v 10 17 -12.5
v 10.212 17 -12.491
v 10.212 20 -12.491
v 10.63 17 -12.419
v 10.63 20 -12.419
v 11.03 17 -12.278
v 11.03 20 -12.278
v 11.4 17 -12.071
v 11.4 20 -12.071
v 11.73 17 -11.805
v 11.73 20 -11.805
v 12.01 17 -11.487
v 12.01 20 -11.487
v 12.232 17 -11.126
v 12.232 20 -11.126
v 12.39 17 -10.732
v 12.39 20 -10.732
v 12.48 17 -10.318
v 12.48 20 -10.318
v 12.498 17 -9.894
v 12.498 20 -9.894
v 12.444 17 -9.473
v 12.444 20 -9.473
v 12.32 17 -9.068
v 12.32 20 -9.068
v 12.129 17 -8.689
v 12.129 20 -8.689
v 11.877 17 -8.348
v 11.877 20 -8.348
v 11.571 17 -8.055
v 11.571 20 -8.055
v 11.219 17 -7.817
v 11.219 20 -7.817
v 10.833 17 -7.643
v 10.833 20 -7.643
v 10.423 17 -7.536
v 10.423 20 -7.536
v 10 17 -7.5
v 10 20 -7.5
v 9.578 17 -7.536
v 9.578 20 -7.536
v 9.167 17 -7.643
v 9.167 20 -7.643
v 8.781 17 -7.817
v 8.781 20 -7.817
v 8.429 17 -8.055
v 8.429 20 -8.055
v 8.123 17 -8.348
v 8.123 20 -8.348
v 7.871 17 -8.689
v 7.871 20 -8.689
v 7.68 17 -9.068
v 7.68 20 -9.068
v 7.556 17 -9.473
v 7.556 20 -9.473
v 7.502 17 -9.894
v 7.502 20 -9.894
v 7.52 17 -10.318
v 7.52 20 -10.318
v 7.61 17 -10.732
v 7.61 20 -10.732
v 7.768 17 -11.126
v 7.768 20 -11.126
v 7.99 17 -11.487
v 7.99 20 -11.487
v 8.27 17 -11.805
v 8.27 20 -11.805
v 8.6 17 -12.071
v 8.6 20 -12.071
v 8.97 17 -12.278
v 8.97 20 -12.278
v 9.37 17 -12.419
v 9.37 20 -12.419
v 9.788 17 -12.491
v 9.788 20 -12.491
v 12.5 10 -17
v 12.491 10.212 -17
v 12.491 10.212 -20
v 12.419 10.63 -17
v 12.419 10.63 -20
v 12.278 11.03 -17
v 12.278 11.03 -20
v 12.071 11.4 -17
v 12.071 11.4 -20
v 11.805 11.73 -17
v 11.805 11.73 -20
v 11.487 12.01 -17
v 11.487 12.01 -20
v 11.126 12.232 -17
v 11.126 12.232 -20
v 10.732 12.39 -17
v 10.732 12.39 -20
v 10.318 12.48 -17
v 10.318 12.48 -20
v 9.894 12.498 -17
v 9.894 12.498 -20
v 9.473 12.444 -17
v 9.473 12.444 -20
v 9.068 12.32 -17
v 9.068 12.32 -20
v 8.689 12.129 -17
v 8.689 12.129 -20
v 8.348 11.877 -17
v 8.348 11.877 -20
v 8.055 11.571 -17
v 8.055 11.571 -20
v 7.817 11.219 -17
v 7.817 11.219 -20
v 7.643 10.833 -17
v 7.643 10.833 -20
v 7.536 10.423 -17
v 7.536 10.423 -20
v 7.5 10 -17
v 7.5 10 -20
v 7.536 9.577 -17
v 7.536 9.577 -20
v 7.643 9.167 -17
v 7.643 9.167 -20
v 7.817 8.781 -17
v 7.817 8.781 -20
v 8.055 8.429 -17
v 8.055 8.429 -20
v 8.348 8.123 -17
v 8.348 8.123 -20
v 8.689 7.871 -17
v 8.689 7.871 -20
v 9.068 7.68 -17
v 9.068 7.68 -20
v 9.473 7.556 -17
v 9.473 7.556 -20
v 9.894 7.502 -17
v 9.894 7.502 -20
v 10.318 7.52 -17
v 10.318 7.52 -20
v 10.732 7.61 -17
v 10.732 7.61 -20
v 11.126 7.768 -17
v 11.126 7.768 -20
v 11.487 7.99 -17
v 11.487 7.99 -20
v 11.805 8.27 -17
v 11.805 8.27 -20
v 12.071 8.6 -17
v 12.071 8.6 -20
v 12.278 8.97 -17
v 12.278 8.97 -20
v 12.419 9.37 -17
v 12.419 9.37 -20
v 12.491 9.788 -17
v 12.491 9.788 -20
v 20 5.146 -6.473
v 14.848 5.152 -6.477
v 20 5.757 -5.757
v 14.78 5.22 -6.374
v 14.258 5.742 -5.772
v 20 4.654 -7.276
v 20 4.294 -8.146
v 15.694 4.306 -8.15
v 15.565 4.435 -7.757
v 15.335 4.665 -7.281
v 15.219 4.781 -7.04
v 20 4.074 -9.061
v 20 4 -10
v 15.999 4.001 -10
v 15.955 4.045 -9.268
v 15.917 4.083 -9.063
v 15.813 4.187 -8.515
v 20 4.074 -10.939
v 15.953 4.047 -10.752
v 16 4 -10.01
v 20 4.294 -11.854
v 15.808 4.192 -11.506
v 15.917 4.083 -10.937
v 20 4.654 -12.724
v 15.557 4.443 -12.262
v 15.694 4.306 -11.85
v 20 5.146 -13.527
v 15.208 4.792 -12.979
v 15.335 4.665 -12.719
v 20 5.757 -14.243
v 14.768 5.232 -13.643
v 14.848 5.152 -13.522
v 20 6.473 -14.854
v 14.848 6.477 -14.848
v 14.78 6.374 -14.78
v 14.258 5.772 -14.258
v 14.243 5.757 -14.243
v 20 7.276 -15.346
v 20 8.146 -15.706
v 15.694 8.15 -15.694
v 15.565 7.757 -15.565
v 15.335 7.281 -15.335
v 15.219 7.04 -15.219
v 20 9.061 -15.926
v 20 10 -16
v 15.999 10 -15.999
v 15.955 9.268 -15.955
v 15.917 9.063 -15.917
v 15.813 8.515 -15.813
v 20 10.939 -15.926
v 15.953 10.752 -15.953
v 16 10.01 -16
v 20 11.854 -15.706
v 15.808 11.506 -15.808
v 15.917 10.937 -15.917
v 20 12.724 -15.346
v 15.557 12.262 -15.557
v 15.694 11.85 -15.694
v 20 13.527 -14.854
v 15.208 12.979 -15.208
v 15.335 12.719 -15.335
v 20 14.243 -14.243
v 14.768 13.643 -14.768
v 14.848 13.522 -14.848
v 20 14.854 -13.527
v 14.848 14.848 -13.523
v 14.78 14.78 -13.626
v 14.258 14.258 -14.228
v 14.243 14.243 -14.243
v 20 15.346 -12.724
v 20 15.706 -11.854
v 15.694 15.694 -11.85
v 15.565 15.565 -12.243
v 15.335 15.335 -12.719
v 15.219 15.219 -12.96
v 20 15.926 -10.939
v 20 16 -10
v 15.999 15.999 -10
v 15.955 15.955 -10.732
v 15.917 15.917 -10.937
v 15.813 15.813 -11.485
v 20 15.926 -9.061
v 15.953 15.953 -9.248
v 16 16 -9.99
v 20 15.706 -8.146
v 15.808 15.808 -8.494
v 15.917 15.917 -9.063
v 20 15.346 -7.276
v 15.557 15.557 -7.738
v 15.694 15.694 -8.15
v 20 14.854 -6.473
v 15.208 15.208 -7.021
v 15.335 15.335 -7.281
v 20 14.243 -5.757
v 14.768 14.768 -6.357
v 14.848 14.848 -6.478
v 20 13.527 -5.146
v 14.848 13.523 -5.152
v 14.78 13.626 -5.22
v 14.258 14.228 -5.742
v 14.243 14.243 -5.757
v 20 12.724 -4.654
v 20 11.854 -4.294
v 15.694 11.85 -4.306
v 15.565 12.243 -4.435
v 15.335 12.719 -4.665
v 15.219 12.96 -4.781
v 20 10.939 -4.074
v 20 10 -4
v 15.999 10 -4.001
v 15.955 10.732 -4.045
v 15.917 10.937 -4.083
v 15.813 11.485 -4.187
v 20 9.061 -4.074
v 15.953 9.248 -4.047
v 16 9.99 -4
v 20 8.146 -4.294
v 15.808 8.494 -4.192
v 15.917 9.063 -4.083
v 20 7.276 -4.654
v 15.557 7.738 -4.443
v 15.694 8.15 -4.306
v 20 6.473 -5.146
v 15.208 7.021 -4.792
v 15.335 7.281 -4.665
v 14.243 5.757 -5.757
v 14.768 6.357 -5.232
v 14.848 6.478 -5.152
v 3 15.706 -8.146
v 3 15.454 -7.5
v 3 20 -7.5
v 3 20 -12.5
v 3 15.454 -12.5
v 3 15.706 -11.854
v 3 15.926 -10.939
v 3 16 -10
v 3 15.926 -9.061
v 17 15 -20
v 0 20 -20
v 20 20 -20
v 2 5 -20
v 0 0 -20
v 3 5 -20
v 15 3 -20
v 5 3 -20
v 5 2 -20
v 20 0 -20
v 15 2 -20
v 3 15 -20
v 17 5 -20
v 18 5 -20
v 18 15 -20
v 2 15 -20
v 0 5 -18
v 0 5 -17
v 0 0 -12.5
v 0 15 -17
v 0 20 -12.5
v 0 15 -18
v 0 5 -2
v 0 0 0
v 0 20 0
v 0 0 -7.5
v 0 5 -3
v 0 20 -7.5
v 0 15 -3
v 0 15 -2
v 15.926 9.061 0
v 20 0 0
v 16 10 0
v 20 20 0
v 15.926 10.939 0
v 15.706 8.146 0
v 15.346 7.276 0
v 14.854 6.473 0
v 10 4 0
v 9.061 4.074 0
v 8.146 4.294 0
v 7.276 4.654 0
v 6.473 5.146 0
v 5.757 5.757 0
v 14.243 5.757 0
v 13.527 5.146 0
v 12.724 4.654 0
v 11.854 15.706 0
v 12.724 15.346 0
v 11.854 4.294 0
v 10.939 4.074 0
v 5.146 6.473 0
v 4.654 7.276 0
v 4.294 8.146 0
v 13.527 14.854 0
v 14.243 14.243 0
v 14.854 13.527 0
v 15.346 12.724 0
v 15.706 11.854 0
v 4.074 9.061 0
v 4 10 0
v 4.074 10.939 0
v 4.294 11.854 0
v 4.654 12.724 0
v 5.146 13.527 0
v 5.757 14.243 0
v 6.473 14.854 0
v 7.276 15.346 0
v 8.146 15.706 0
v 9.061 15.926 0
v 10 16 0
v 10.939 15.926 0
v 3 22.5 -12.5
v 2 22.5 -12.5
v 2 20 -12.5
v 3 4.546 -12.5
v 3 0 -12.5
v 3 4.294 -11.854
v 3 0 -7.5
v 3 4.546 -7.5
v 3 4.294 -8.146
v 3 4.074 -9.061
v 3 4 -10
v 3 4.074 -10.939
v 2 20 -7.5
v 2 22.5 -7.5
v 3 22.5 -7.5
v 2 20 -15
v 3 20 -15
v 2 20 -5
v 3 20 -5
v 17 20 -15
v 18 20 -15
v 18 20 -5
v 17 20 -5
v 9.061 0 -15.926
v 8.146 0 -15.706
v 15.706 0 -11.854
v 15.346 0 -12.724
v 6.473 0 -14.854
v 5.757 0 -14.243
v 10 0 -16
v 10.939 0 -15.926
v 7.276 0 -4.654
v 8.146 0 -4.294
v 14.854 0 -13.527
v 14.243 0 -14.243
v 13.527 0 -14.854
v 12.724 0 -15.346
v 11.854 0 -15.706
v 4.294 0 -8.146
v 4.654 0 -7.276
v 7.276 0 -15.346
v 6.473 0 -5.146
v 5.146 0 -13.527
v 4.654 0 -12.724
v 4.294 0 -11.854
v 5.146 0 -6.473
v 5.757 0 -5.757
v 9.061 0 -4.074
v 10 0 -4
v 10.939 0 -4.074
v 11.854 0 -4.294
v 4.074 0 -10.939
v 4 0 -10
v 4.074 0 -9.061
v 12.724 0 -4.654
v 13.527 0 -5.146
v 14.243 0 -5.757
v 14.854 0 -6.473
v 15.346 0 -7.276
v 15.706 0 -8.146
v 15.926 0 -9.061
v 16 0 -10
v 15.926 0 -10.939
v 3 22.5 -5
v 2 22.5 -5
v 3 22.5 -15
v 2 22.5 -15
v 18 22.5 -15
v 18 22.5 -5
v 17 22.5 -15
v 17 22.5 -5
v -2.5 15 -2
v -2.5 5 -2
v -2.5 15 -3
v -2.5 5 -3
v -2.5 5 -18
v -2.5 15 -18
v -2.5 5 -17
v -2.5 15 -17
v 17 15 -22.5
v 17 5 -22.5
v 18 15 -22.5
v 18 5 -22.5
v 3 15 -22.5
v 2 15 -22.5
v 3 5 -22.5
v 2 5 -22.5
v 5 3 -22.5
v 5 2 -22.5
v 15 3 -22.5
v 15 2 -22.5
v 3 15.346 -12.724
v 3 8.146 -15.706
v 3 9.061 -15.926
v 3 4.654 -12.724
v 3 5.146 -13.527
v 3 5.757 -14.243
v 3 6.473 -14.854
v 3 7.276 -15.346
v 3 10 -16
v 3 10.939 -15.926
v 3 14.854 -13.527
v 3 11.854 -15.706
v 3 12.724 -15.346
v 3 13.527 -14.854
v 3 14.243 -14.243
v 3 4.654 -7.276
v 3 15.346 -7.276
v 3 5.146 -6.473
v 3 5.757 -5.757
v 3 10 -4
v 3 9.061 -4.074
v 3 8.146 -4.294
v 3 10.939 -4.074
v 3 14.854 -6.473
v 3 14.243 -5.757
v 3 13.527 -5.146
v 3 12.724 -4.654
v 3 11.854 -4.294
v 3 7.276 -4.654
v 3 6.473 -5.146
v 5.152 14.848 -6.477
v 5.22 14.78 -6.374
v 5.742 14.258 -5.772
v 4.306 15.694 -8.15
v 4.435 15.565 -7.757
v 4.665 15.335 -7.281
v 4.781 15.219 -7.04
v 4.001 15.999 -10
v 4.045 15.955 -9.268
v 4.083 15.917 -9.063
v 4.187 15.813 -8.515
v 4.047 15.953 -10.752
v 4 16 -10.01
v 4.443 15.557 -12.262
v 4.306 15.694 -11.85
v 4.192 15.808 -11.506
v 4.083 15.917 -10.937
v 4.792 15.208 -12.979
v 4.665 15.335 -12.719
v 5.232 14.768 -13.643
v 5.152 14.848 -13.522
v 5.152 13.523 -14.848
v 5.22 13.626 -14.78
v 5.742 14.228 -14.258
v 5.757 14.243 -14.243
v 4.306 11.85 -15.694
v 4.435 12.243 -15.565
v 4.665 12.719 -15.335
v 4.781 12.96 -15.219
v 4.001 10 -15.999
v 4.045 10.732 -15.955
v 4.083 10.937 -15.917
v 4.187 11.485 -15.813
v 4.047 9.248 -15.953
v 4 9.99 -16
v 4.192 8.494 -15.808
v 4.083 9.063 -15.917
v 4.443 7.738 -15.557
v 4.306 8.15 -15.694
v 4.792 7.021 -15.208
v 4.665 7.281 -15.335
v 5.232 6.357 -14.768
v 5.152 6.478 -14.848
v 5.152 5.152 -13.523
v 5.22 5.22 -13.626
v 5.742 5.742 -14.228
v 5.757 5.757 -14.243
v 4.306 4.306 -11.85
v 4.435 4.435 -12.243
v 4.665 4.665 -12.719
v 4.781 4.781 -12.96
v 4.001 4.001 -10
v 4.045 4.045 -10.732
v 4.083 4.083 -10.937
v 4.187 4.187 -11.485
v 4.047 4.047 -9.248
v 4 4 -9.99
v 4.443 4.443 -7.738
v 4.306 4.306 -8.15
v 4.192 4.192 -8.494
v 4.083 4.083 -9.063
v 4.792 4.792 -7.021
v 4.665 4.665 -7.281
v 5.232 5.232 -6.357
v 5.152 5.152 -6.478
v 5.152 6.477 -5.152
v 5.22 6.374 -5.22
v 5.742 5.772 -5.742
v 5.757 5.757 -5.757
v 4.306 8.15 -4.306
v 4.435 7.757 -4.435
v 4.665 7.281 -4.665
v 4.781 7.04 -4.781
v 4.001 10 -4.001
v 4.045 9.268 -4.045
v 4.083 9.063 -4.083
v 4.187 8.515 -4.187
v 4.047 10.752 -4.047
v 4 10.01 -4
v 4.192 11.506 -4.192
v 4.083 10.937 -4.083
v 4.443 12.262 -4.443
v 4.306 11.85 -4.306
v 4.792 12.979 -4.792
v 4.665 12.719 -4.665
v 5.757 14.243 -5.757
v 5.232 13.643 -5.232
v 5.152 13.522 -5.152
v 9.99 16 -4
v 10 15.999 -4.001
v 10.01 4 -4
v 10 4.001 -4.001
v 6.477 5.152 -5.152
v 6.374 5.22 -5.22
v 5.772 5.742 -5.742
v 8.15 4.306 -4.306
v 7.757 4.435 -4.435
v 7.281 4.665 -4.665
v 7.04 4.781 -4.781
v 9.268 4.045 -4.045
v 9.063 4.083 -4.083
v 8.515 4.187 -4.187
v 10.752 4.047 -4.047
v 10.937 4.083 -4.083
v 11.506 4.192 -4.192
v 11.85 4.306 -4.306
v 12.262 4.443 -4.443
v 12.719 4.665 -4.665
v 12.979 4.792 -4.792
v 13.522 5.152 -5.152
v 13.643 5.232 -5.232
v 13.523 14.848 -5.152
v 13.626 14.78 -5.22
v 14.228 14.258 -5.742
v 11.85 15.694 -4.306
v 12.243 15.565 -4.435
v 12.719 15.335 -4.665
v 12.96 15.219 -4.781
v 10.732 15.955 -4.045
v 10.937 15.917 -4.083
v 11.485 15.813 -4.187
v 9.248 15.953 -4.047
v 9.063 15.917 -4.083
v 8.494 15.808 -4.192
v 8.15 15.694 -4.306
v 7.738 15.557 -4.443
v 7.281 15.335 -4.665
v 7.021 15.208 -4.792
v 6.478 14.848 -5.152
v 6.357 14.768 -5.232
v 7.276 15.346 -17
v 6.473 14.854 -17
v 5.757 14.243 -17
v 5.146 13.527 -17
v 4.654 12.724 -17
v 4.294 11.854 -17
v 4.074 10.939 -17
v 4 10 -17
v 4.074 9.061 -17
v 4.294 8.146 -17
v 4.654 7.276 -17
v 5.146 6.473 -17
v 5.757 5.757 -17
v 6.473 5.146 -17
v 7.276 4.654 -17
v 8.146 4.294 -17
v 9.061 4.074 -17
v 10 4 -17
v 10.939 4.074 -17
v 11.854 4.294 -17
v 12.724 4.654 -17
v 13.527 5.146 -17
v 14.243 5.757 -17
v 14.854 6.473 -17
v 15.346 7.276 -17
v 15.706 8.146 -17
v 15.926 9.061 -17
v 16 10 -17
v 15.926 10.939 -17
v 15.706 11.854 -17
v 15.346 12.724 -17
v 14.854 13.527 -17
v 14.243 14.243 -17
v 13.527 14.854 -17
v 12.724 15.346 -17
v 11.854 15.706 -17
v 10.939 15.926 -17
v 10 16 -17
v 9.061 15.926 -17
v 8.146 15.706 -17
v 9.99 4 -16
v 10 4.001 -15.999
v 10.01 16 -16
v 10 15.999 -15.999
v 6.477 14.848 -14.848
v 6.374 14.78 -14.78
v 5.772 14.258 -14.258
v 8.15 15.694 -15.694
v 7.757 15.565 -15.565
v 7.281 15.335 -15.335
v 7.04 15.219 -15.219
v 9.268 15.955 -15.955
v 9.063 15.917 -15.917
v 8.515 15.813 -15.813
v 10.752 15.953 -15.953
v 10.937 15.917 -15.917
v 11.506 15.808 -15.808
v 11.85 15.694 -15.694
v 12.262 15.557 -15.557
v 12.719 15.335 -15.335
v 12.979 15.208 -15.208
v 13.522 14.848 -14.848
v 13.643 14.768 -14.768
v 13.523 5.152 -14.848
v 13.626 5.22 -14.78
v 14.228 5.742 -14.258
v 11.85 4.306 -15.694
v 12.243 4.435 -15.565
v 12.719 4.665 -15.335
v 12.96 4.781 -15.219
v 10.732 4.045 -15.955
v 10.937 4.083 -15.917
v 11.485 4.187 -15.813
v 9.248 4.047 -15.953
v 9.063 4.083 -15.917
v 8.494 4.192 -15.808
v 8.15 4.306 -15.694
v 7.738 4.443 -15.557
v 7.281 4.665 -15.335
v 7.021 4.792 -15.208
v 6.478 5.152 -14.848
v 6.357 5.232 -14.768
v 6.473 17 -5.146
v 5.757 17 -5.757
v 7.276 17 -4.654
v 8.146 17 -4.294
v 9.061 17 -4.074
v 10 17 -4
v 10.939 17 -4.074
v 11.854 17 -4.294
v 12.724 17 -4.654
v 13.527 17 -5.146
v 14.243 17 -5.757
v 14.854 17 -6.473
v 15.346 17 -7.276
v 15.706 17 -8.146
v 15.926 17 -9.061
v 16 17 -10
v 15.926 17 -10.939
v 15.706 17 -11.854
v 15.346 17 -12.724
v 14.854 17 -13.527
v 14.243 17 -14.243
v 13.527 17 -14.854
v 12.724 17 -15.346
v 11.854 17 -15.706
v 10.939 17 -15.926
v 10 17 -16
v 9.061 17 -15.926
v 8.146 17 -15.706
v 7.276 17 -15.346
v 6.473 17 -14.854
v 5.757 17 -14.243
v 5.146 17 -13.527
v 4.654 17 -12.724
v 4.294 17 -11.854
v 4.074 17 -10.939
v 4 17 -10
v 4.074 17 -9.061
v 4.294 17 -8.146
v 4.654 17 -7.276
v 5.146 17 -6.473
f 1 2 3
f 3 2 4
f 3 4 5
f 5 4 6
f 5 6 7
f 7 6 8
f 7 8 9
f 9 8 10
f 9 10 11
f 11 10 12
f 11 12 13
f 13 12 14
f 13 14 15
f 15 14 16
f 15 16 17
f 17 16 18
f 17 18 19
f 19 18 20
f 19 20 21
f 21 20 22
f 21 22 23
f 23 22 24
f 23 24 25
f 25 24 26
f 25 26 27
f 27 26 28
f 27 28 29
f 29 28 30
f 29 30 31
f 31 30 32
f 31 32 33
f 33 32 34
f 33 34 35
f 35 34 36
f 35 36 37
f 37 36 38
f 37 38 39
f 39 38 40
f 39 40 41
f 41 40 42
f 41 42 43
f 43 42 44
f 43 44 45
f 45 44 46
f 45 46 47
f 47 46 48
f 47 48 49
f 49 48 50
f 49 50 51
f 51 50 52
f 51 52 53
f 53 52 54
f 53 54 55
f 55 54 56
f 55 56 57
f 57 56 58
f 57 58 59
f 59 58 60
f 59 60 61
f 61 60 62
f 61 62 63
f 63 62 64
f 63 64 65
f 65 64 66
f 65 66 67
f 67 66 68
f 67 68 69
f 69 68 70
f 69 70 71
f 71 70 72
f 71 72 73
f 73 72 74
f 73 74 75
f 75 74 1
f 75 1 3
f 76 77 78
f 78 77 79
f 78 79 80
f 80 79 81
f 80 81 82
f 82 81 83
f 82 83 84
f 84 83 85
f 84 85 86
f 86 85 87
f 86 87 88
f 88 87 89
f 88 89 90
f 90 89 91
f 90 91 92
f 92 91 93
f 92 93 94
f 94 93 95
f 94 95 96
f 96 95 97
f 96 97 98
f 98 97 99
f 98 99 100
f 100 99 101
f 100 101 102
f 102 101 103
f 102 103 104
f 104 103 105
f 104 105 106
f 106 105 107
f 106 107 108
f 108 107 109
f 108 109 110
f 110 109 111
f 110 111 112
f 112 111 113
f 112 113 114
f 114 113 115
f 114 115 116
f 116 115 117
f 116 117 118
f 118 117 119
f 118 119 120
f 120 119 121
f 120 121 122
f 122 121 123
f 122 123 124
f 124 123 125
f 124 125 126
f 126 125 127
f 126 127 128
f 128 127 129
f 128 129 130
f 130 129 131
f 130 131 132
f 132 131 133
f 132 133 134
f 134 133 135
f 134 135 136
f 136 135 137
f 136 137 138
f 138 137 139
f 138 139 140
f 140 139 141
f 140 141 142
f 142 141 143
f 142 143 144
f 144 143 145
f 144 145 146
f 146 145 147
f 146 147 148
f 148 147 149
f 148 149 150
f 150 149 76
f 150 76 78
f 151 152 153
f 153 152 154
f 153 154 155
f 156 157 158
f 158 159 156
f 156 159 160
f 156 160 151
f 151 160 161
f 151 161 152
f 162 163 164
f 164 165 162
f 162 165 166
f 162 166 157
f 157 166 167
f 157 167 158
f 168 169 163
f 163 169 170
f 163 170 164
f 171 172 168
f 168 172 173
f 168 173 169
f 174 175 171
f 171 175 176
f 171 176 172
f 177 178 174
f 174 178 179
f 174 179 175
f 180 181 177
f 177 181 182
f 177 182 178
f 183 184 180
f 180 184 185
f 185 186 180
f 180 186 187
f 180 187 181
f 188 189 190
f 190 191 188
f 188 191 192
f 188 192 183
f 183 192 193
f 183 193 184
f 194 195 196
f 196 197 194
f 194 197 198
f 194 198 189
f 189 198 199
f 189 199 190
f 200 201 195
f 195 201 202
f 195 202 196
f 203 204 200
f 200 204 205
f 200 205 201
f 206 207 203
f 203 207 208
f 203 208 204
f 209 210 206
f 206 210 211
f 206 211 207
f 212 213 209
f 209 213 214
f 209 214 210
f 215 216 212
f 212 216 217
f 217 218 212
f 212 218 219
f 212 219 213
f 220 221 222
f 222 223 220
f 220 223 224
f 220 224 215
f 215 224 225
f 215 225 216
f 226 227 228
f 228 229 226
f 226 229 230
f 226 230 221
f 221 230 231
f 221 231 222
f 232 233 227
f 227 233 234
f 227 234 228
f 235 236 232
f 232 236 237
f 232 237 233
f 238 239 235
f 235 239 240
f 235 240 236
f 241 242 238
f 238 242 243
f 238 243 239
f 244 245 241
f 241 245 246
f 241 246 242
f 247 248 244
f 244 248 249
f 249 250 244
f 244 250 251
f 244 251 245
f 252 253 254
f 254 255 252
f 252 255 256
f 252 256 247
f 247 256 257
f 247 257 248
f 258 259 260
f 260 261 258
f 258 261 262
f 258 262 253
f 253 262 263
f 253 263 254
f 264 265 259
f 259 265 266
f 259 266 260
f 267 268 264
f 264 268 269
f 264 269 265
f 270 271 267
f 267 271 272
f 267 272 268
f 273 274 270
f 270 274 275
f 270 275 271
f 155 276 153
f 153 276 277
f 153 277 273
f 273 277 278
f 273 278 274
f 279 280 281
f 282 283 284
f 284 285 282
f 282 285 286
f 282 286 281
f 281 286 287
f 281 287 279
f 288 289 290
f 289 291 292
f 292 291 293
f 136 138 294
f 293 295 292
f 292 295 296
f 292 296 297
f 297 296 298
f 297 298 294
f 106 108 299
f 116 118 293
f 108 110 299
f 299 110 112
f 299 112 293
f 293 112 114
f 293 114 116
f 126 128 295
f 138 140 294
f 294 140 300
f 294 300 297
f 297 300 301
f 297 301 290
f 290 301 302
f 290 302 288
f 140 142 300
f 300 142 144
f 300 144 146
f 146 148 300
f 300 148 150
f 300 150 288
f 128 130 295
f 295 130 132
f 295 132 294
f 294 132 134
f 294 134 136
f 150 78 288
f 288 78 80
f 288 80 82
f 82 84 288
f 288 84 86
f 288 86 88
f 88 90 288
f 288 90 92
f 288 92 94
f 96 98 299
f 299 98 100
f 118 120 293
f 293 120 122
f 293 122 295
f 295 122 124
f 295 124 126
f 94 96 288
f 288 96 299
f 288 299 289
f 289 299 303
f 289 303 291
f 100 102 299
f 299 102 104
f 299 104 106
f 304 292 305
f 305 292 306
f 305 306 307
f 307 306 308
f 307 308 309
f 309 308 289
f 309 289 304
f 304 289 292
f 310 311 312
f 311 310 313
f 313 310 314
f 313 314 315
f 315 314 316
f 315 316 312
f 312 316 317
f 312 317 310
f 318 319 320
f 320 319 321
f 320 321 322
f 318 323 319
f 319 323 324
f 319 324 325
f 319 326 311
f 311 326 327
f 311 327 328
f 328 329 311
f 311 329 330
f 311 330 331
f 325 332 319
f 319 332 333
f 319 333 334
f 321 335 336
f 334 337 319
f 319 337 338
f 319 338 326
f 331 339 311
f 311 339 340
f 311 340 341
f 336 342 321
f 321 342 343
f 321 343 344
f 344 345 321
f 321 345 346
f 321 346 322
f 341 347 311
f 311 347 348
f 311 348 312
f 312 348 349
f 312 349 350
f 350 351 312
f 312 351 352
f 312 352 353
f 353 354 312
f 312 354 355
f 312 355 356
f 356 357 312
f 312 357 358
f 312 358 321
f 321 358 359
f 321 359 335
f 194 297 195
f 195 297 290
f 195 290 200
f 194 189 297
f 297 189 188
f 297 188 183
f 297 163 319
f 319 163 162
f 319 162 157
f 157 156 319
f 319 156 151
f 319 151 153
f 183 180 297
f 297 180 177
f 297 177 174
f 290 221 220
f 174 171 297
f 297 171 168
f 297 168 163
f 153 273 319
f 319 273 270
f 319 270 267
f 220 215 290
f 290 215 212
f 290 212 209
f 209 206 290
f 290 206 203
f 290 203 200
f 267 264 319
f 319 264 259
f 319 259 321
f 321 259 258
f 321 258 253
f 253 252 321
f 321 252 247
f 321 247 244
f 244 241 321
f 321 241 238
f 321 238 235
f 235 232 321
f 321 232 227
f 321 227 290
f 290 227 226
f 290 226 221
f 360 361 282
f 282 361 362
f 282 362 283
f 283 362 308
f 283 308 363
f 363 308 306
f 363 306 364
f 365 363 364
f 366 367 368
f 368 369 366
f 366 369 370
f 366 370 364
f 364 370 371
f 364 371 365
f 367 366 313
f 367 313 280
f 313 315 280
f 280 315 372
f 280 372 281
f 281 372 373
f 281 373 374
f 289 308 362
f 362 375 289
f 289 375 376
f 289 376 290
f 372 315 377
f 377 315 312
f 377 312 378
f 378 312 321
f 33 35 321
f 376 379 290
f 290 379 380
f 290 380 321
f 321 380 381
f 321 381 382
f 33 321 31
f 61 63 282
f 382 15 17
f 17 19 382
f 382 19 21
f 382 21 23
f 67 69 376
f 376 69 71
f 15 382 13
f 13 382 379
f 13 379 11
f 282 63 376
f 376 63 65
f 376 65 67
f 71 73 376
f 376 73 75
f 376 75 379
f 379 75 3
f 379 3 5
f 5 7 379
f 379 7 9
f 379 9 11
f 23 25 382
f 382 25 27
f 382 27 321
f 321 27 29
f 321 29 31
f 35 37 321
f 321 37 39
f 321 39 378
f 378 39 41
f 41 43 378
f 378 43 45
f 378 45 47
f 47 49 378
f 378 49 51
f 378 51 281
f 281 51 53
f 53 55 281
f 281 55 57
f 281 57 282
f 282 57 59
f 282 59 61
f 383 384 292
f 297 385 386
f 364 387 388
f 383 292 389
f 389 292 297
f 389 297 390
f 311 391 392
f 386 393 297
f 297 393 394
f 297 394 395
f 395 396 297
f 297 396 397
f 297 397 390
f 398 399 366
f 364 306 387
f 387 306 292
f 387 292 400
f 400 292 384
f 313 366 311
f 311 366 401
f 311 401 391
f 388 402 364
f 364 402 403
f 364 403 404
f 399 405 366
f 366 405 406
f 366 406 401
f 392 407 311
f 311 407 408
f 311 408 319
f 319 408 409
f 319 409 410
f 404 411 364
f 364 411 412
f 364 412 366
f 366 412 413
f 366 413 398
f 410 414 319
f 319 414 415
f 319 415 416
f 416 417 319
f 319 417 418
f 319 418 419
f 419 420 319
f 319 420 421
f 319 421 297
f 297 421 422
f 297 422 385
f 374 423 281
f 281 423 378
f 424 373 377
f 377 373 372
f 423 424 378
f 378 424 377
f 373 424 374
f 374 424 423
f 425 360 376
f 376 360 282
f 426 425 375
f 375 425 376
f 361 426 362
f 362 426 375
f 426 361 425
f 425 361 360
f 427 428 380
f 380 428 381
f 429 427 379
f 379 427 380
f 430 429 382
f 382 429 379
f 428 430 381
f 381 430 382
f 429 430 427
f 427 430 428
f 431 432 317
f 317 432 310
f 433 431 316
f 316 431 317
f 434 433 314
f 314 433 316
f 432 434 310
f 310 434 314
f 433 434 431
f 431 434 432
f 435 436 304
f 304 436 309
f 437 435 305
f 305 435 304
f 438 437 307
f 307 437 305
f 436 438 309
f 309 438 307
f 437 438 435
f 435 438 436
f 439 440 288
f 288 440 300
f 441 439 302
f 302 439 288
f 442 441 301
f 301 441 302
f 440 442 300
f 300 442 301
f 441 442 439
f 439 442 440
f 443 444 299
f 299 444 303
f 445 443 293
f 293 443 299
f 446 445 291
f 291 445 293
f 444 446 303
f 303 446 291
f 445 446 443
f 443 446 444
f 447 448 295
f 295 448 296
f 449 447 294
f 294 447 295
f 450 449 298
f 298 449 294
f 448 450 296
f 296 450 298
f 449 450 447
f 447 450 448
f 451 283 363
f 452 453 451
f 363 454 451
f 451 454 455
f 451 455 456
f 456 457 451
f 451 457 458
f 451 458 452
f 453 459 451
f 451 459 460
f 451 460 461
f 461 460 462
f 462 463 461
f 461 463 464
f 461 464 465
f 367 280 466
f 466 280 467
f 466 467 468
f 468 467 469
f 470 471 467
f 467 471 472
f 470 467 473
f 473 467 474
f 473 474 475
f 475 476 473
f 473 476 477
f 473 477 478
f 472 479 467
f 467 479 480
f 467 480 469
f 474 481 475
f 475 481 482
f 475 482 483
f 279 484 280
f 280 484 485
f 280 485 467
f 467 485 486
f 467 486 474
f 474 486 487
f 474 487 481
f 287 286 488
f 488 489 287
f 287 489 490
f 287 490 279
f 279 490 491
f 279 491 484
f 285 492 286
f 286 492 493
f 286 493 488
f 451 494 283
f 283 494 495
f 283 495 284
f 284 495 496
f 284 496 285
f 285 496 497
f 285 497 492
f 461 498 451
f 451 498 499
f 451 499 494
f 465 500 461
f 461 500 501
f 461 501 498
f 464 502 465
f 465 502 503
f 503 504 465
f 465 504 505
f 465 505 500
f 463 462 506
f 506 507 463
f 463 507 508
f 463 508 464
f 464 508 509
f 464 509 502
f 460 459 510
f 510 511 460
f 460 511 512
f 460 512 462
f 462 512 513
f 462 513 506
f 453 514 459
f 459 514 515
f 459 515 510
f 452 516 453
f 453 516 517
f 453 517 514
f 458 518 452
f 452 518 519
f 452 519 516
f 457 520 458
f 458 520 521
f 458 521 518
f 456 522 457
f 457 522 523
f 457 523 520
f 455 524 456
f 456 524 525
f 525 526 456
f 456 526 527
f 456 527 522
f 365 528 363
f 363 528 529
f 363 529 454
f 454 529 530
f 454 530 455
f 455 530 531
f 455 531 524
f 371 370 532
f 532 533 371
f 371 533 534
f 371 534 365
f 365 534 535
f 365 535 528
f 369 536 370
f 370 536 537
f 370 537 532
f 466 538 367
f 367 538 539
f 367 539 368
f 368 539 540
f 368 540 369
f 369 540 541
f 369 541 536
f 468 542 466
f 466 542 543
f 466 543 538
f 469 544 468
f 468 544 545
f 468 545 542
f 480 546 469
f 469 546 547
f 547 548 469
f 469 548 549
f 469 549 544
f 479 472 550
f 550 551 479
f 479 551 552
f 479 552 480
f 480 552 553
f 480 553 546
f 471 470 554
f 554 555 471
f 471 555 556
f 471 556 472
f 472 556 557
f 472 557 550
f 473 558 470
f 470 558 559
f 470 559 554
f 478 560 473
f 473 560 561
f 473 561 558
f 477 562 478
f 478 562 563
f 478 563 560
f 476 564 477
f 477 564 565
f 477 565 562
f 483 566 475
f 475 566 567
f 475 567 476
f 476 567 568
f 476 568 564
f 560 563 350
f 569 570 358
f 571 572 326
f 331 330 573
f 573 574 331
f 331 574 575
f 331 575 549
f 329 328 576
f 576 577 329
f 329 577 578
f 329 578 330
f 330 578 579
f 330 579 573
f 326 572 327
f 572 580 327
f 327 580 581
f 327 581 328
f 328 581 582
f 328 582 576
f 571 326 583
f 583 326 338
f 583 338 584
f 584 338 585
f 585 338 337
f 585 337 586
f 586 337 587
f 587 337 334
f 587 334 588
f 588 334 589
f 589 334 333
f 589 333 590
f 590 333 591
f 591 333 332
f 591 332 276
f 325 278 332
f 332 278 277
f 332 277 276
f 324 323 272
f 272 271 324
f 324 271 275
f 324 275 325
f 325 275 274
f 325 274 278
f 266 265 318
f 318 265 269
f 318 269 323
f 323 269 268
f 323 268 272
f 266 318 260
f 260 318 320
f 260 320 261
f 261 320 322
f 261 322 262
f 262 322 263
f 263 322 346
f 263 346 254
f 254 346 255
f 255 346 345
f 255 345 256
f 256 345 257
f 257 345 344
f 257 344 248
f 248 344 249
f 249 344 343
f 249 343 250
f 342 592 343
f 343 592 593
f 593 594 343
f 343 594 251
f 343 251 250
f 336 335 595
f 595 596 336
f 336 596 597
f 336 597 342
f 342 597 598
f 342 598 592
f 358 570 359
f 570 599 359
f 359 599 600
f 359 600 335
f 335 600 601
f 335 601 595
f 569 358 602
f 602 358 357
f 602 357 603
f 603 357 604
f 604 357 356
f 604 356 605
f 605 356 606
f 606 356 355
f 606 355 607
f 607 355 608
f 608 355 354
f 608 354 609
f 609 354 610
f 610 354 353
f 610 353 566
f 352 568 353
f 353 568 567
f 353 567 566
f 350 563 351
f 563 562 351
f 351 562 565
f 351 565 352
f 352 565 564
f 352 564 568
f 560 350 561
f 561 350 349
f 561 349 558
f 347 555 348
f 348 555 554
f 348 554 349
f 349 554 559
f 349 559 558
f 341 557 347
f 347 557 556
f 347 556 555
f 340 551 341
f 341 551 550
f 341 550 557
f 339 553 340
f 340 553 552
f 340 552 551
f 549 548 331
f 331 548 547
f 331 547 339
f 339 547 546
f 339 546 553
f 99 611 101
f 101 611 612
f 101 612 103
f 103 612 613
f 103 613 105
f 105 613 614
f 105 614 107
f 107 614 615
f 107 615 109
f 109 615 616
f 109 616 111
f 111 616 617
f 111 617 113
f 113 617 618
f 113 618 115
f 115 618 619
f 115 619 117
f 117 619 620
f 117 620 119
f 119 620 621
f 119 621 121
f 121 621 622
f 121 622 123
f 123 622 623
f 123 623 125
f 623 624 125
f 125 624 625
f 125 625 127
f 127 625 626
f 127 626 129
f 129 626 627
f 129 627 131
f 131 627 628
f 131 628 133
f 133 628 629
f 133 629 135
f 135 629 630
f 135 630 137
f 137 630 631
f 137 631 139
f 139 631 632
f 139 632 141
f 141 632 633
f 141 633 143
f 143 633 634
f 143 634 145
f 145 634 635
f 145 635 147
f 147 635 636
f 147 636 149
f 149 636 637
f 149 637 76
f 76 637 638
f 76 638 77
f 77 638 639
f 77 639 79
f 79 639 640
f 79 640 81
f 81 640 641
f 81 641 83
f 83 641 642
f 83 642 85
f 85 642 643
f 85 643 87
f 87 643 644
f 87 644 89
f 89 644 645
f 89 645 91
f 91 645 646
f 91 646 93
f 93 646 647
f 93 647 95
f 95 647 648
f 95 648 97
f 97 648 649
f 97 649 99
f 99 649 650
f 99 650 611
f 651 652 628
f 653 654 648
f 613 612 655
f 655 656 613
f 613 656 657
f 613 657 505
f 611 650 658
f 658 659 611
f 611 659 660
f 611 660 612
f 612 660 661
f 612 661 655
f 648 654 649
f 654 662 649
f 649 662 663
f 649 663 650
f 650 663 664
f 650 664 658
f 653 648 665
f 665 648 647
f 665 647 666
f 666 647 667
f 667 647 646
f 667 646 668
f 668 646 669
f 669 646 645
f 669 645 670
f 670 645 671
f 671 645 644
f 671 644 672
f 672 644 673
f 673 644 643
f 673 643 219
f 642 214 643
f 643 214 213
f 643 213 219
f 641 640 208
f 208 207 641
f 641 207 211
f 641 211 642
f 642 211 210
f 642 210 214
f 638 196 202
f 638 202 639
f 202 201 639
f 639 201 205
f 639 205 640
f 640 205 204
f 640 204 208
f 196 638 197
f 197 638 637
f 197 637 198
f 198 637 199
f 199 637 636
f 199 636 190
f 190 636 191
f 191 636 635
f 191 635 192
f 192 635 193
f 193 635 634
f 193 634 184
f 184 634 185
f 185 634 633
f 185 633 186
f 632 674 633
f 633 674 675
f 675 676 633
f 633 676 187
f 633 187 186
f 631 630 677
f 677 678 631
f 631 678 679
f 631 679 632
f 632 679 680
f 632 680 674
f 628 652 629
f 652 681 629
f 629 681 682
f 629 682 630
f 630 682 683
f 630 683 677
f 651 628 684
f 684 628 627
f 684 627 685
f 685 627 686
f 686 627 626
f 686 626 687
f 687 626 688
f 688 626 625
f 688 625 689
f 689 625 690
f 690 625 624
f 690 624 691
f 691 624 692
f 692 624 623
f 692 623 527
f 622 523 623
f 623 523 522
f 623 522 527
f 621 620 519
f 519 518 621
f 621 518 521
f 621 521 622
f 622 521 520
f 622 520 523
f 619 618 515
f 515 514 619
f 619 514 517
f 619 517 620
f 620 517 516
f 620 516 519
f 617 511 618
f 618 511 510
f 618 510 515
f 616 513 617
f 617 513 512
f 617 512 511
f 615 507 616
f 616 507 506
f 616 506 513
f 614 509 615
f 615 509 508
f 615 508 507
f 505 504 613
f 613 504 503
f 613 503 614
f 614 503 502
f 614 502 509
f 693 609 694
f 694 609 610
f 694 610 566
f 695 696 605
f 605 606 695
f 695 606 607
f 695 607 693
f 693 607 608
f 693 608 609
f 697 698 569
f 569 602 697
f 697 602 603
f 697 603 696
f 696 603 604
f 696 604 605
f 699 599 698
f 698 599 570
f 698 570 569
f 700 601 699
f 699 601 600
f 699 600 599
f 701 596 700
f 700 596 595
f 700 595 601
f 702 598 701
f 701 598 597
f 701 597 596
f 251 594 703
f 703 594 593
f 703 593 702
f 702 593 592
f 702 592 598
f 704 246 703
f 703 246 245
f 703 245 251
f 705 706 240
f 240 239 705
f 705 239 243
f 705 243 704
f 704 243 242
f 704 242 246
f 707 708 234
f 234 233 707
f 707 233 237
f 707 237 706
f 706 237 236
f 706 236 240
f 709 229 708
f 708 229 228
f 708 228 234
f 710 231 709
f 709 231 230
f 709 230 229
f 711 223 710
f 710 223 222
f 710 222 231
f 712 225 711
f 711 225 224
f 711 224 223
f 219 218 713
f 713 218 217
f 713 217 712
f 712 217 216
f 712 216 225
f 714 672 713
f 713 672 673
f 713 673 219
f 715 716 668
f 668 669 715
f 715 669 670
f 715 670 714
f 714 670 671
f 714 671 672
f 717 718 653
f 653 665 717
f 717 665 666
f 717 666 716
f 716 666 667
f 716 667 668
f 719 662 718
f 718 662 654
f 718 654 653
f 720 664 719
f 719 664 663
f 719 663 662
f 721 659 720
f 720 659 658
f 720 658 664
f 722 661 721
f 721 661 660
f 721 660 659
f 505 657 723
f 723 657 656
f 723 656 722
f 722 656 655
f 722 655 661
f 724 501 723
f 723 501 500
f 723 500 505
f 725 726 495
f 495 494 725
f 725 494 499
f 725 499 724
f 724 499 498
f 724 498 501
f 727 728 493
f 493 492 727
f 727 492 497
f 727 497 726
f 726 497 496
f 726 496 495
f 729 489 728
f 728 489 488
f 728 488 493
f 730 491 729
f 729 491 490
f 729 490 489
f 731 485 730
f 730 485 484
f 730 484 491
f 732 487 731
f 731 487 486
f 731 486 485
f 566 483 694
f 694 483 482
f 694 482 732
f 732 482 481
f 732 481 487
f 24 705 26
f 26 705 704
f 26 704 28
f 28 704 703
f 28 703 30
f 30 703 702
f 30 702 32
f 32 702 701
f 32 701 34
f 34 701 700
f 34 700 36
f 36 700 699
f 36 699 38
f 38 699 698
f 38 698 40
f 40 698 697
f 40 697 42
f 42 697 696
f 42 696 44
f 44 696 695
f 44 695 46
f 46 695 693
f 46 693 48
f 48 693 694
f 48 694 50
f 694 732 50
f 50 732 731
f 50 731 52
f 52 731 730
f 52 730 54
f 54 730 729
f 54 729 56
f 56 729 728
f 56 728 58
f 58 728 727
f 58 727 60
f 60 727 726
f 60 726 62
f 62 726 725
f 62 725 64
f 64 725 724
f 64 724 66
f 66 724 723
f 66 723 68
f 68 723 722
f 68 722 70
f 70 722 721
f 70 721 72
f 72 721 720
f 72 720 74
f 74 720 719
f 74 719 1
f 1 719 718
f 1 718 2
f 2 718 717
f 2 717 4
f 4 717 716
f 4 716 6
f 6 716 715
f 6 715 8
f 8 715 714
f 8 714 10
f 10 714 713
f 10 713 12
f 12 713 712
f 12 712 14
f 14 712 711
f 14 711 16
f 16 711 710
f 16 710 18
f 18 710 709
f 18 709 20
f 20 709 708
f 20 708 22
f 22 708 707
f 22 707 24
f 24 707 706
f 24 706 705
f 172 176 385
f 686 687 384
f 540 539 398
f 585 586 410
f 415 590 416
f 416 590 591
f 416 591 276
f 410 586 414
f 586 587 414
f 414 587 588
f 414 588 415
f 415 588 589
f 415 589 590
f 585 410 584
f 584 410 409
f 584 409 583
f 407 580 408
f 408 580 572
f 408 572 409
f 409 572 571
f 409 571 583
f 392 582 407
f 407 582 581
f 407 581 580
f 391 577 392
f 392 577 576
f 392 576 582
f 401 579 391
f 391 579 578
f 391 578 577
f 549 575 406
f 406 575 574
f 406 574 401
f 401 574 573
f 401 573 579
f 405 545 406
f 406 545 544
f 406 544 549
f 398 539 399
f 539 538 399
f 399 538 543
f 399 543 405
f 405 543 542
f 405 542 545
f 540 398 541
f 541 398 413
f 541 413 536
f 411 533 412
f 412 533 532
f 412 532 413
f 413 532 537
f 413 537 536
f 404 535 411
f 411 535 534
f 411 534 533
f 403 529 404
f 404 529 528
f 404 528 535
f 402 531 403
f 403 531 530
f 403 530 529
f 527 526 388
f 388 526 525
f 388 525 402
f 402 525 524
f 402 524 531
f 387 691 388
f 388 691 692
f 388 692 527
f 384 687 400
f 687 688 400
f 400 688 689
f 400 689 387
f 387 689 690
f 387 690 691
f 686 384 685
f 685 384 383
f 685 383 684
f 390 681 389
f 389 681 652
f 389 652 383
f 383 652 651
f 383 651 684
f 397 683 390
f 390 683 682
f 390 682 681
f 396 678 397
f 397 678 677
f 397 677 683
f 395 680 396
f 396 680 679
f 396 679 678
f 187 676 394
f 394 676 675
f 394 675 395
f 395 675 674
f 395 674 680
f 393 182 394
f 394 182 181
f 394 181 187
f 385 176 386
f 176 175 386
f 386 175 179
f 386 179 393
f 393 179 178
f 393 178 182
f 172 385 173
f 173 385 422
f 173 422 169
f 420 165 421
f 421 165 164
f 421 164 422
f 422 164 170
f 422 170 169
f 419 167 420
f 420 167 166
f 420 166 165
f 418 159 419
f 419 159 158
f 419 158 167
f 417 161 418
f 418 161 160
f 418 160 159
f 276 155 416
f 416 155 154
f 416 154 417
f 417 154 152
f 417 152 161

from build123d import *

# Parameters (mm, degrees)
BOSS_EXTRUDE1_DEPTH = 20
SKETCH2_W           = 1
SKETCH2_H           = 2.5
SKETCH2_H_2         = 10
BOSS_EXTRUDE2_DEPTH = 2.5
SKETCH2_3_R         = 2.5
CUT_EXTRUDE1_DEPTH  = 35.641016151
SKETCH3_W           = 1
SKETCH3_H           = 10
BOSS_EXTRUDE3_DEPTH = 2.5
SKETCH4_W           = 1
SKETCH4_H           = 10
SKETCH4_W_2         = 10
SKETCH4_H_2         = 1
BOSS_EXTRUDE4_DEPTH = 2.5
SKETCH4_3_R         = 2.5
CUT_EXTRUDE2_DEPTH  = 37.142080737
SKETCH5_R           = 6
CUT_EXTRUDE3_DEPTH  = 17
SKETCH6_R           = 6
CUT_EXTRUDE4_DEPTH  = 17
SKETCH7_R           = 6
CUT_EXTRUDE5_DEPTH  = 17


with BuildPart() as part:
    # Sketch1 → Boss-Extrude1 (new body)
    with BuildSketch(Plane(origin=(0, 0, 0), x_dir=(1, 0, 0), z_dir=(0, 1, 0))):
        Polygon((0, 7.5), (3, 7.5), (3, 12.5), (0, 12.5), (0, 20), (20, 20), (20, 0), (0, 0), align=None)
    extrude(amount=BOSS_EXTRUDE1_DEPTH)

    # Sketch2 → Boss-Extrude2 (add)
    with BuildSketch(Plane(origin=(0, 20, 0), x_dir=(1, 0, 0), z_dir=(0, 1, 0))):
        with Locations((2.5, 6.25)):
            Rectangle(SKETCH2_W, SKETCH2_H)
        with Locations((2.5, 13.75)):
            Rectangle(SKETCH2_W, SKETCH2_H)
        with Locations((17.5, 10)):
            Rectangle(SKETCH2_W, SKETCH2_H_2)
    extrude(amount=BOSS_EXTRUDE2_DEPTH)

    # Sketch2<3> → Cut-Extrude1 (cut, through all)
    with BuildSketch(Plane(origin=(0, 20, 0), x_dir=(1, 0, 0), z_dir=(0, 1, 0))):
        with Locations((10, 10)):
            Circle(SKETCH2_3_R)
    extrude(amount=-CUT_EXTRUDE1_DEPTH, mode=Mode.SUBTRACT)

    # Sketch3 → Boss-Extrude3 (add)
    with BuildSketch(Plane.ZY):
        with Locations((-2.5, 10)):
            Rectangle(SKETCH3_W, SKETCH3_H)
        with Locations((-17.5, 10)):
            Rectangle(SKETCH3_W, SKETCH3_H)
    extrude(amount=BOSS_EXTRUDE3_DEPTH)

    # Sketch4 → Boss-Extrude4 (add)
    with BuildSketch(Plane(origin=(0, 0, -20), x_dir=(-1, 0, 0), z_dir=(0, 0, -1))):
        with Locations((-17.5, 10)):
            Rectangle(SKETCH4_W, SKETCH4_H)
        with Locations((-2.5, 10)):
            Rectangle(SKETCH4_W, SKETCH4_H)
        with Locations((-10, 2.5)):
            Rectangle(SKETCH4_W_2, SKETCH4_H_2)
    extrude(amount=BOSS_EXTRUDE4_DEPTH)

    # Sketch4<3> → Cut-Extrude2 (cut, through all)
    with BuildSketch(Plane(origin=(0, 0, -20), x_dir=(-1, 0, 0), z_dir=(0, 0, -1))):
        with Locations((-10, 10)):
            Circle(SKETCH4_3_R)
    extrude(amount=-CUT_EXTRUDE2_DEPTH, mode=Mode.SUBTRACT)

    # Sketch5 → Cut-Extrude3 (cut)
    with BuildSketch(Plane(origin=(20, 0, 0), x_dir=(0, 0, -1), z_dir=(1, 0, 0))):
        with Locations((10, 10)):
            Circle(SKETCH5_R)
    extrude(amount=-CUT_EXTRUDE3_DEPTH, mode=Mode.SUBTRACT)

    # Sketch6 → Cut-Extrude4 (cut)
    with BuildSketch(Plane.XY):
        with Locations((10, 10)):
            Circle(SKETCH6_R)
    extrude(amount=-CUT_EXTRUDE4_DEPTH, mode=Mode.SUBTRACT)

    # Sketch7 → Cut-Extrude5 (cut)
    with BuildSketch(Plane.XZ):
        with Locations((10, -10)):
            Circle(SKETCH7_R)
    extrude(amount=-CUT_EXTRUDE5_DEPTH, mode=Mode.SUBTRACT)


solid = part.part
